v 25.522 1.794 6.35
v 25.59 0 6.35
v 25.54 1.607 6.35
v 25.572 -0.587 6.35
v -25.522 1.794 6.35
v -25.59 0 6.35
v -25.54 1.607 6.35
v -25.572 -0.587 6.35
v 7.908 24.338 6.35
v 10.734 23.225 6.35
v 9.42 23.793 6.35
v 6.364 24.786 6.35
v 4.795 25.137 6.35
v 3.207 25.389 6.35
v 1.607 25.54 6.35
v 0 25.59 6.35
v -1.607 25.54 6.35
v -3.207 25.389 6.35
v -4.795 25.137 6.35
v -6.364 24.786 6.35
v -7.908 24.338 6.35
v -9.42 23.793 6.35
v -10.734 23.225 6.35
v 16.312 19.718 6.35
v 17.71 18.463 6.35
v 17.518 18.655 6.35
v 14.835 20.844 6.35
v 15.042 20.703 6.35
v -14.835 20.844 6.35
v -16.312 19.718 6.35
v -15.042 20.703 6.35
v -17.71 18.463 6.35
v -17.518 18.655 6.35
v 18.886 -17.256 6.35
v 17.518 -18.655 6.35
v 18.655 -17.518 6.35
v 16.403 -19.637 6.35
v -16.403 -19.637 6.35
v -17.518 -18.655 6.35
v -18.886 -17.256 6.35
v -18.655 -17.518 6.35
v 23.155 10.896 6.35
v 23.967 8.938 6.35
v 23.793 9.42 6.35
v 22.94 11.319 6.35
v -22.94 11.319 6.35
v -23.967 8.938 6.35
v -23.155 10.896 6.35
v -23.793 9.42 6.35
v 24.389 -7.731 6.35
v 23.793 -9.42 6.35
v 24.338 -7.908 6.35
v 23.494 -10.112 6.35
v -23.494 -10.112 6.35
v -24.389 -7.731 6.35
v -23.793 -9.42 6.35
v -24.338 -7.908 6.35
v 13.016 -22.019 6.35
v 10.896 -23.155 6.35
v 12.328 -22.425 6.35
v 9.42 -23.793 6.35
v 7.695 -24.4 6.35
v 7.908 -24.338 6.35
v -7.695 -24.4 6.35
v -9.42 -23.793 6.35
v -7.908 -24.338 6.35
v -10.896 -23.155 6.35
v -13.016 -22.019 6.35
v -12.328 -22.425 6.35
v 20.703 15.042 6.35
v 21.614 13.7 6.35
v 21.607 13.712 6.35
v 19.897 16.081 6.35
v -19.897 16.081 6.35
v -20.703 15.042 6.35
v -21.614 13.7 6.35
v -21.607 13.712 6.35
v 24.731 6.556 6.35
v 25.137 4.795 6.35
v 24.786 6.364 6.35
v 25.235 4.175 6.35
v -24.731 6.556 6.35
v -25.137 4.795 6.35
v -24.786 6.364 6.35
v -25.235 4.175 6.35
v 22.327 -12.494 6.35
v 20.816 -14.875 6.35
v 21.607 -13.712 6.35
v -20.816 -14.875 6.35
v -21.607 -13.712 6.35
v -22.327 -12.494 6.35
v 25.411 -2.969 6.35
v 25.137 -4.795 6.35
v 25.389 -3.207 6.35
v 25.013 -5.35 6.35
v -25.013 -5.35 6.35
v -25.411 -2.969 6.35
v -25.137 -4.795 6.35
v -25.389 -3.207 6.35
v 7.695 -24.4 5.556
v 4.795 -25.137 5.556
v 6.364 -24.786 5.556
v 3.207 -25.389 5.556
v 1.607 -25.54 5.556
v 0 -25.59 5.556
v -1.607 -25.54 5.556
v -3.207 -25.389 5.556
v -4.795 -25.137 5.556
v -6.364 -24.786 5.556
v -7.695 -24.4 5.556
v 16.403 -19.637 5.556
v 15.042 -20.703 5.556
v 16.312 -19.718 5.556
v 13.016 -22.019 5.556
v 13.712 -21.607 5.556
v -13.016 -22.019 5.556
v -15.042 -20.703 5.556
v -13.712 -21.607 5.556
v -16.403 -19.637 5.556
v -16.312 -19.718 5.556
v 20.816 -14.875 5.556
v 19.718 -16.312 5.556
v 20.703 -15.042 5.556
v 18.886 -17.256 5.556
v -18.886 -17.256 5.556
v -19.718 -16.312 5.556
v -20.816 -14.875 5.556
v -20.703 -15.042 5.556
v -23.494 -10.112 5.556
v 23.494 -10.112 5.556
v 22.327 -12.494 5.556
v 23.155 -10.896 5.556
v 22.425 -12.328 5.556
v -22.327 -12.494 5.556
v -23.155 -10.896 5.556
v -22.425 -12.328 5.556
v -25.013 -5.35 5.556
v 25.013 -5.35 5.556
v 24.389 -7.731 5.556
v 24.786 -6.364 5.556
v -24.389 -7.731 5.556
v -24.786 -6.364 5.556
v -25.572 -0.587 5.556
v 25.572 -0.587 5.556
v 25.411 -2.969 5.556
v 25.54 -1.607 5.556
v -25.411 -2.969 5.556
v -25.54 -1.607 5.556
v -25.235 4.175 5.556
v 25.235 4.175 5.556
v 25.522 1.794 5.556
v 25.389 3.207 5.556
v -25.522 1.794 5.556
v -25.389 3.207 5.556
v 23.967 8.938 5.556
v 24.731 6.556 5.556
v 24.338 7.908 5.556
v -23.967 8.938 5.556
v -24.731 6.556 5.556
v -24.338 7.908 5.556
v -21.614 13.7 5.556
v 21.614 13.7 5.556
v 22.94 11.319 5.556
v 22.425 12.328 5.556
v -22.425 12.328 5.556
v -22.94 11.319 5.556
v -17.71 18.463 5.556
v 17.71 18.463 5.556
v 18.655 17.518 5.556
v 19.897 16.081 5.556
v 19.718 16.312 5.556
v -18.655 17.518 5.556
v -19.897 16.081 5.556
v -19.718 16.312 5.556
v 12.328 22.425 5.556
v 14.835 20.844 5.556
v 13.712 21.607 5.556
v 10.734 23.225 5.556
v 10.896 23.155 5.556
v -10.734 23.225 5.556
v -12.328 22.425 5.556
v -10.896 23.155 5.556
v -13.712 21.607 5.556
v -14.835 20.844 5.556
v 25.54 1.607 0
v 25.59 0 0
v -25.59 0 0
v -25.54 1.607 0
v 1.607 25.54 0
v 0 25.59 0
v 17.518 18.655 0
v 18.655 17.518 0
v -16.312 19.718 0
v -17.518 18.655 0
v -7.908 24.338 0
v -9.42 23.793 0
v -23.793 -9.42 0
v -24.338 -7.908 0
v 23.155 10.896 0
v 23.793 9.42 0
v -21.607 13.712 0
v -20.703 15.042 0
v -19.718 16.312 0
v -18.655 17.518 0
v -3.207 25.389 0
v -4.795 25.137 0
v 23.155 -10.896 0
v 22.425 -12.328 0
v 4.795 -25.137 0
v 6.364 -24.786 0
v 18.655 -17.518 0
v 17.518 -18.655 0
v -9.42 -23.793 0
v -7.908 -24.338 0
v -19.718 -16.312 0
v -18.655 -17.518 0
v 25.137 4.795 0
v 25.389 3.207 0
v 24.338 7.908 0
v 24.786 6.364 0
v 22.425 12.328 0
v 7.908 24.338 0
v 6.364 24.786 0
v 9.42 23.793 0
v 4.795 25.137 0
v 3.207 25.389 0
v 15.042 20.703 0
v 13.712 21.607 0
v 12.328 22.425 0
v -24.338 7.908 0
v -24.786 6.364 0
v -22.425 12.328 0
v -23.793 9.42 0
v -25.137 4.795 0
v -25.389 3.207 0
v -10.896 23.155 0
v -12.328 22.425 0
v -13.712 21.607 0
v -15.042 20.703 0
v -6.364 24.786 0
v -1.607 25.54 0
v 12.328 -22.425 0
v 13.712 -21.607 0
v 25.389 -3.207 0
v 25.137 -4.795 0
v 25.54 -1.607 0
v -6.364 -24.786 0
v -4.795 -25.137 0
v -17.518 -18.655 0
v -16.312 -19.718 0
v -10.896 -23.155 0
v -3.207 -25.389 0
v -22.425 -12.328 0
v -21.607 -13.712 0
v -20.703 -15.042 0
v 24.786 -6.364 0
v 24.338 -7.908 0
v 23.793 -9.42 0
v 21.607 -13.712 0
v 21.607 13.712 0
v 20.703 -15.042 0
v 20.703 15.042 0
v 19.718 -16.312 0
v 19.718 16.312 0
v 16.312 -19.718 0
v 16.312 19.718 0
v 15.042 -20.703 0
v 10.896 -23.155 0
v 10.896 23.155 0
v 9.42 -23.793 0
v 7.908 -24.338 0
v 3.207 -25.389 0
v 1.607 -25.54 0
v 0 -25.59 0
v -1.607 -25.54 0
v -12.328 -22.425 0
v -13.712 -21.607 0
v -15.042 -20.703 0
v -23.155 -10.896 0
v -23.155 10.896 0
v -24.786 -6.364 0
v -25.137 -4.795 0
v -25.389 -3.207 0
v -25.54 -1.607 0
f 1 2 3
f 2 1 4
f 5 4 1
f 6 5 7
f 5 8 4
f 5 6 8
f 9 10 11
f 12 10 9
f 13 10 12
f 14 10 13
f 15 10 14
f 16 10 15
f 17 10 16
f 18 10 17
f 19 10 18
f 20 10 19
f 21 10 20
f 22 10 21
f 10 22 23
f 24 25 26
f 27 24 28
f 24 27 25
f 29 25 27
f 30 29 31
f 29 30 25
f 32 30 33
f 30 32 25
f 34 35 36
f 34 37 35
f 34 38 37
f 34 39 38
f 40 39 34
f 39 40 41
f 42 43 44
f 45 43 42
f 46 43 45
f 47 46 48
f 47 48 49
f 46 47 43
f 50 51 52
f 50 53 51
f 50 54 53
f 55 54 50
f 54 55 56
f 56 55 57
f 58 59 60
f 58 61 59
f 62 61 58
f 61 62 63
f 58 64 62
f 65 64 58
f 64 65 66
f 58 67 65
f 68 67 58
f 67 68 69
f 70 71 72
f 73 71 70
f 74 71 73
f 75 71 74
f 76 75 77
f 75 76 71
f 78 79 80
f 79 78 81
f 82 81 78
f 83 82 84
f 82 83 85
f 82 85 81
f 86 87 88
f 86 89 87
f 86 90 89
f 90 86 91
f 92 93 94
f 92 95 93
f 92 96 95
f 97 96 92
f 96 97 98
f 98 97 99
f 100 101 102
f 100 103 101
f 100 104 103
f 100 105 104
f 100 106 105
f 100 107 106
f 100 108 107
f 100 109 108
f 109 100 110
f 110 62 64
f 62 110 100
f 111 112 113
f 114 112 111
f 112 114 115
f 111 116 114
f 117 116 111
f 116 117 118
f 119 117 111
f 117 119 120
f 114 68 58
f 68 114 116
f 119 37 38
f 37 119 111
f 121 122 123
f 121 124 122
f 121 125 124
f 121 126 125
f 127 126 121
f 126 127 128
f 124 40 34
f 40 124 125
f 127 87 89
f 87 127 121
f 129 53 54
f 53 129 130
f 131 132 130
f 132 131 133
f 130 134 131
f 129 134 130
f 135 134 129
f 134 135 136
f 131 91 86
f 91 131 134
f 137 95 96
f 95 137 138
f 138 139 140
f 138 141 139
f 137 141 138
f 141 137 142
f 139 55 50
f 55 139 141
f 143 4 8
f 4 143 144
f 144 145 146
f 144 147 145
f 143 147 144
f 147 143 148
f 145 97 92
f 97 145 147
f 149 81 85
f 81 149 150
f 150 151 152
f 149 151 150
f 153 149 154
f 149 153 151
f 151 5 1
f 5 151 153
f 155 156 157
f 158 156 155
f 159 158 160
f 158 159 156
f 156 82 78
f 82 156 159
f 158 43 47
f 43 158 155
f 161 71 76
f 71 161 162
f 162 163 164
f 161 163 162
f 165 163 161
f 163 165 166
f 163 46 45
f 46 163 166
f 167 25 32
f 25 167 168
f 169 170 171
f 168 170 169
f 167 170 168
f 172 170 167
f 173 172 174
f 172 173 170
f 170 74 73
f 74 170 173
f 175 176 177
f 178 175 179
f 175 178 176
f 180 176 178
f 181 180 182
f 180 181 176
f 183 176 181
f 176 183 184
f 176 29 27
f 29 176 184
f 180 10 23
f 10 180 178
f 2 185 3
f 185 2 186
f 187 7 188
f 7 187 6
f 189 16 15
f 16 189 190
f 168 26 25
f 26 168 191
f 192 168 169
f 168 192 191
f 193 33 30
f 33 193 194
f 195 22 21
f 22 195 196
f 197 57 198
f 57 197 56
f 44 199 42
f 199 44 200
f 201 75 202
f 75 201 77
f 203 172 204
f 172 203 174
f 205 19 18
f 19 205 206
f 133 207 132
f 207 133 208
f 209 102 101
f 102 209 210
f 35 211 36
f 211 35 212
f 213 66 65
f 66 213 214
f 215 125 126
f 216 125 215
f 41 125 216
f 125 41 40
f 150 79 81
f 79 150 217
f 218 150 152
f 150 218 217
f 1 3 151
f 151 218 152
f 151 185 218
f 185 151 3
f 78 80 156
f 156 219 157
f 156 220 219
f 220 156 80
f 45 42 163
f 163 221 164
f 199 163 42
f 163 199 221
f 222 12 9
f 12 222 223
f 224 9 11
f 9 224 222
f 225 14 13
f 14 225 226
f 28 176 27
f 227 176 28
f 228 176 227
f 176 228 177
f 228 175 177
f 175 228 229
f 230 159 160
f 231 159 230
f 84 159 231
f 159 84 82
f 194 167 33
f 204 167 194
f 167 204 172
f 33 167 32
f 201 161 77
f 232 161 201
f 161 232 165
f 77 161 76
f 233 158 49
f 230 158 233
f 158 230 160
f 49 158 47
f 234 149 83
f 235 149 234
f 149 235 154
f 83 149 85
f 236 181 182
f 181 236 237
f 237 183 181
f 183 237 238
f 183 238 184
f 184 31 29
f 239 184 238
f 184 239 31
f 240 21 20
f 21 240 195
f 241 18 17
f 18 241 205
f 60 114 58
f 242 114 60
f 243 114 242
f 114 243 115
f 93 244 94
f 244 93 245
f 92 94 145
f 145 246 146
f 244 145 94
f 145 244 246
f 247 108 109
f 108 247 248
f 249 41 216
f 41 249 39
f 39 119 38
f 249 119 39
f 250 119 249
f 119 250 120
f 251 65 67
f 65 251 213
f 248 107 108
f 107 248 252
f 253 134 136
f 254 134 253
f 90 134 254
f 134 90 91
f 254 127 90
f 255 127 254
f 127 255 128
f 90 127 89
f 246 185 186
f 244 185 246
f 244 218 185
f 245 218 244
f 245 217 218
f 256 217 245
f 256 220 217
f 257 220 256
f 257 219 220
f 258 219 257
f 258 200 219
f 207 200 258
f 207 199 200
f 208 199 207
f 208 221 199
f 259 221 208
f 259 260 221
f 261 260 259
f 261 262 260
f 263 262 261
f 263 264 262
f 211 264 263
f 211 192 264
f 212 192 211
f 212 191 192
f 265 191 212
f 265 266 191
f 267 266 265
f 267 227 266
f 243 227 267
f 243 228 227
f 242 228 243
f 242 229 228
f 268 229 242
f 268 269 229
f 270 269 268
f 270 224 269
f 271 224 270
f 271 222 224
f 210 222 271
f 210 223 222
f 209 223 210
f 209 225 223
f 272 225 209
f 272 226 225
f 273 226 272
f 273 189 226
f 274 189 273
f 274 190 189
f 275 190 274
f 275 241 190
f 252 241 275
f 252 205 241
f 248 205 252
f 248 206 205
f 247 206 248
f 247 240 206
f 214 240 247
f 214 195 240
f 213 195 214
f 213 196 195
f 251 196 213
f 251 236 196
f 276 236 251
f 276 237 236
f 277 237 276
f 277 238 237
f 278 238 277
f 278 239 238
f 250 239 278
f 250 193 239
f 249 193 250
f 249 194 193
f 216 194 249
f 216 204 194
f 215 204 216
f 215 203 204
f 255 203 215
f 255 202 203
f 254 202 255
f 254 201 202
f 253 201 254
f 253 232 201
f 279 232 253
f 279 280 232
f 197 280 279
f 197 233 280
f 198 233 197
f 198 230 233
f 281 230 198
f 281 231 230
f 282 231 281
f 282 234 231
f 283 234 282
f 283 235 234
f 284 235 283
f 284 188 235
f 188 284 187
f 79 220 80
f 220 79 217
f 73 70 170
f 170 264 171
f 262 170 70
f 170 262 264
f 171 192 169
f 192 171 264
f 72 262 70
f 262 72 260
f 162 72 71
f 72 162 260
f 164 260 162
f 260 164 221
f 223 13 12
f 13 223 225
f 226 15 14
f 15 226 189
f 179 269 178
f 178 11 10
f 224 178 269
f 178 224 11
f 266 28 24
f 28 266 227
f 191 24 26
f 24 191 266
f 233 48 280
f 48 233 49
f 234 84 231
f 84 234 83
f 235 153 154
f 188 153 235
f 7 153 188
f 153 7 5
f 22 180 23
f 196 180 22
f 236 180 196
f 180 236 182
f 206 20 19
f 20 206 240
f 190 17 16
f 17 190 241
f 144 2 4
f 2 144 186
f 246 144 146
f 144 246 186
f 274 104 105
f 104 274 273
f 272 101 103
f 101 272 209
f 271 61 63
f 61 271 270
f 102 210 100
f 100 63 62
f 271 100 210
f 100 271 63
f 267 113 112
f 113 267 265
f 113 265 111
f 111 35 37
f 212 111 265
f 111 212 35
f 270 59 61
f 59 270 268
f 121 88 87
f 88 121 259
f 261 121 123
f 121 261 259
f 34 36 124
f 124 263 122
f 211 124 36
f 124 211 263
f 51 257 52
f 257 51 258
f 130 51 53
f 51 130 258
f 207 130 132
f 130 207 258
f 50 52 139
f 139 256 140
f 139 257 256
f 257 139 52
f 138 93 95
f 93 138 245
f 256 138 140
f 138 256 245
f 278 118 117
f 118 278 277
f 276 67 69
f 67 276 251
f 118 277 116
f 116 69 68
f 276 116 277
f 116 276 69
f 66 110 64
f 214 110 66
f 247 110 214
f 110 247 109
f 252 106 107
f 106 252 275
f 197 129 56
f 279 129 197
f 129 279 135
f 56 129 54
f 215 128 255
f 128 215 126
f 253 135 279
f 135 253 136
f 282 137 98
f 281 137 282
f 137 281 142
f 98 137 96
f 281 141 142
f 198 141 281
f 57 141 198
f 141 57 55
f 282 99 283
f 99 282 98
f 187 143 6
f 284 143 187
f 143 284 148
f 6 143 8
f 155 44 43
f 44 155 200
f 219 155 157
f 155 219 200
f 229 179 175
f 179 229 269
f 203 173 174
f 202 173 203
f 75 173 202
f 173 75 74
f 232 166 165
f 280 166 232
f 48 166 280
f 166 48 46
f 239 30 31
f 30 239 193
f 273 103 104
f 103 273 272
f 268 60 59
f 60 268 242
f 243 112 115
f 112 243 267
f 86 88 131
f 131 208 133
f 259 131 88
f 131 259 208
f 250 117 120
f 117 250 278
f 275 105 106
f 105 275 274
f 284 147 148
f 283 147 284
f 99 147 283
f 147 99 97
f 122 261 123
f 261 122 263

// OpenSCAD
$fn=100;

in_to_mm = 25.4;

frit_z = 0.25 * in_to_mm;
frit_r = 1.0075 * in_to_mm;

groove_depth = (1/32) * in_to_mm;
groove_width = (3/32) * in_to_mm;

difference()
{
    cylinder(r=frit_r, h=frit_z);
    
    num_grooves = floor(frit_r/groove_width);
    
    for (i=[0:num_grooves])
    {
        offset = 2 * i * groove_width;
        translate([-frit_r, offset-frit_r-groove_width/2, frit_z-groove_depth])
        cube([2*frit_r, groove_width, groove_depth]);
    }
}
